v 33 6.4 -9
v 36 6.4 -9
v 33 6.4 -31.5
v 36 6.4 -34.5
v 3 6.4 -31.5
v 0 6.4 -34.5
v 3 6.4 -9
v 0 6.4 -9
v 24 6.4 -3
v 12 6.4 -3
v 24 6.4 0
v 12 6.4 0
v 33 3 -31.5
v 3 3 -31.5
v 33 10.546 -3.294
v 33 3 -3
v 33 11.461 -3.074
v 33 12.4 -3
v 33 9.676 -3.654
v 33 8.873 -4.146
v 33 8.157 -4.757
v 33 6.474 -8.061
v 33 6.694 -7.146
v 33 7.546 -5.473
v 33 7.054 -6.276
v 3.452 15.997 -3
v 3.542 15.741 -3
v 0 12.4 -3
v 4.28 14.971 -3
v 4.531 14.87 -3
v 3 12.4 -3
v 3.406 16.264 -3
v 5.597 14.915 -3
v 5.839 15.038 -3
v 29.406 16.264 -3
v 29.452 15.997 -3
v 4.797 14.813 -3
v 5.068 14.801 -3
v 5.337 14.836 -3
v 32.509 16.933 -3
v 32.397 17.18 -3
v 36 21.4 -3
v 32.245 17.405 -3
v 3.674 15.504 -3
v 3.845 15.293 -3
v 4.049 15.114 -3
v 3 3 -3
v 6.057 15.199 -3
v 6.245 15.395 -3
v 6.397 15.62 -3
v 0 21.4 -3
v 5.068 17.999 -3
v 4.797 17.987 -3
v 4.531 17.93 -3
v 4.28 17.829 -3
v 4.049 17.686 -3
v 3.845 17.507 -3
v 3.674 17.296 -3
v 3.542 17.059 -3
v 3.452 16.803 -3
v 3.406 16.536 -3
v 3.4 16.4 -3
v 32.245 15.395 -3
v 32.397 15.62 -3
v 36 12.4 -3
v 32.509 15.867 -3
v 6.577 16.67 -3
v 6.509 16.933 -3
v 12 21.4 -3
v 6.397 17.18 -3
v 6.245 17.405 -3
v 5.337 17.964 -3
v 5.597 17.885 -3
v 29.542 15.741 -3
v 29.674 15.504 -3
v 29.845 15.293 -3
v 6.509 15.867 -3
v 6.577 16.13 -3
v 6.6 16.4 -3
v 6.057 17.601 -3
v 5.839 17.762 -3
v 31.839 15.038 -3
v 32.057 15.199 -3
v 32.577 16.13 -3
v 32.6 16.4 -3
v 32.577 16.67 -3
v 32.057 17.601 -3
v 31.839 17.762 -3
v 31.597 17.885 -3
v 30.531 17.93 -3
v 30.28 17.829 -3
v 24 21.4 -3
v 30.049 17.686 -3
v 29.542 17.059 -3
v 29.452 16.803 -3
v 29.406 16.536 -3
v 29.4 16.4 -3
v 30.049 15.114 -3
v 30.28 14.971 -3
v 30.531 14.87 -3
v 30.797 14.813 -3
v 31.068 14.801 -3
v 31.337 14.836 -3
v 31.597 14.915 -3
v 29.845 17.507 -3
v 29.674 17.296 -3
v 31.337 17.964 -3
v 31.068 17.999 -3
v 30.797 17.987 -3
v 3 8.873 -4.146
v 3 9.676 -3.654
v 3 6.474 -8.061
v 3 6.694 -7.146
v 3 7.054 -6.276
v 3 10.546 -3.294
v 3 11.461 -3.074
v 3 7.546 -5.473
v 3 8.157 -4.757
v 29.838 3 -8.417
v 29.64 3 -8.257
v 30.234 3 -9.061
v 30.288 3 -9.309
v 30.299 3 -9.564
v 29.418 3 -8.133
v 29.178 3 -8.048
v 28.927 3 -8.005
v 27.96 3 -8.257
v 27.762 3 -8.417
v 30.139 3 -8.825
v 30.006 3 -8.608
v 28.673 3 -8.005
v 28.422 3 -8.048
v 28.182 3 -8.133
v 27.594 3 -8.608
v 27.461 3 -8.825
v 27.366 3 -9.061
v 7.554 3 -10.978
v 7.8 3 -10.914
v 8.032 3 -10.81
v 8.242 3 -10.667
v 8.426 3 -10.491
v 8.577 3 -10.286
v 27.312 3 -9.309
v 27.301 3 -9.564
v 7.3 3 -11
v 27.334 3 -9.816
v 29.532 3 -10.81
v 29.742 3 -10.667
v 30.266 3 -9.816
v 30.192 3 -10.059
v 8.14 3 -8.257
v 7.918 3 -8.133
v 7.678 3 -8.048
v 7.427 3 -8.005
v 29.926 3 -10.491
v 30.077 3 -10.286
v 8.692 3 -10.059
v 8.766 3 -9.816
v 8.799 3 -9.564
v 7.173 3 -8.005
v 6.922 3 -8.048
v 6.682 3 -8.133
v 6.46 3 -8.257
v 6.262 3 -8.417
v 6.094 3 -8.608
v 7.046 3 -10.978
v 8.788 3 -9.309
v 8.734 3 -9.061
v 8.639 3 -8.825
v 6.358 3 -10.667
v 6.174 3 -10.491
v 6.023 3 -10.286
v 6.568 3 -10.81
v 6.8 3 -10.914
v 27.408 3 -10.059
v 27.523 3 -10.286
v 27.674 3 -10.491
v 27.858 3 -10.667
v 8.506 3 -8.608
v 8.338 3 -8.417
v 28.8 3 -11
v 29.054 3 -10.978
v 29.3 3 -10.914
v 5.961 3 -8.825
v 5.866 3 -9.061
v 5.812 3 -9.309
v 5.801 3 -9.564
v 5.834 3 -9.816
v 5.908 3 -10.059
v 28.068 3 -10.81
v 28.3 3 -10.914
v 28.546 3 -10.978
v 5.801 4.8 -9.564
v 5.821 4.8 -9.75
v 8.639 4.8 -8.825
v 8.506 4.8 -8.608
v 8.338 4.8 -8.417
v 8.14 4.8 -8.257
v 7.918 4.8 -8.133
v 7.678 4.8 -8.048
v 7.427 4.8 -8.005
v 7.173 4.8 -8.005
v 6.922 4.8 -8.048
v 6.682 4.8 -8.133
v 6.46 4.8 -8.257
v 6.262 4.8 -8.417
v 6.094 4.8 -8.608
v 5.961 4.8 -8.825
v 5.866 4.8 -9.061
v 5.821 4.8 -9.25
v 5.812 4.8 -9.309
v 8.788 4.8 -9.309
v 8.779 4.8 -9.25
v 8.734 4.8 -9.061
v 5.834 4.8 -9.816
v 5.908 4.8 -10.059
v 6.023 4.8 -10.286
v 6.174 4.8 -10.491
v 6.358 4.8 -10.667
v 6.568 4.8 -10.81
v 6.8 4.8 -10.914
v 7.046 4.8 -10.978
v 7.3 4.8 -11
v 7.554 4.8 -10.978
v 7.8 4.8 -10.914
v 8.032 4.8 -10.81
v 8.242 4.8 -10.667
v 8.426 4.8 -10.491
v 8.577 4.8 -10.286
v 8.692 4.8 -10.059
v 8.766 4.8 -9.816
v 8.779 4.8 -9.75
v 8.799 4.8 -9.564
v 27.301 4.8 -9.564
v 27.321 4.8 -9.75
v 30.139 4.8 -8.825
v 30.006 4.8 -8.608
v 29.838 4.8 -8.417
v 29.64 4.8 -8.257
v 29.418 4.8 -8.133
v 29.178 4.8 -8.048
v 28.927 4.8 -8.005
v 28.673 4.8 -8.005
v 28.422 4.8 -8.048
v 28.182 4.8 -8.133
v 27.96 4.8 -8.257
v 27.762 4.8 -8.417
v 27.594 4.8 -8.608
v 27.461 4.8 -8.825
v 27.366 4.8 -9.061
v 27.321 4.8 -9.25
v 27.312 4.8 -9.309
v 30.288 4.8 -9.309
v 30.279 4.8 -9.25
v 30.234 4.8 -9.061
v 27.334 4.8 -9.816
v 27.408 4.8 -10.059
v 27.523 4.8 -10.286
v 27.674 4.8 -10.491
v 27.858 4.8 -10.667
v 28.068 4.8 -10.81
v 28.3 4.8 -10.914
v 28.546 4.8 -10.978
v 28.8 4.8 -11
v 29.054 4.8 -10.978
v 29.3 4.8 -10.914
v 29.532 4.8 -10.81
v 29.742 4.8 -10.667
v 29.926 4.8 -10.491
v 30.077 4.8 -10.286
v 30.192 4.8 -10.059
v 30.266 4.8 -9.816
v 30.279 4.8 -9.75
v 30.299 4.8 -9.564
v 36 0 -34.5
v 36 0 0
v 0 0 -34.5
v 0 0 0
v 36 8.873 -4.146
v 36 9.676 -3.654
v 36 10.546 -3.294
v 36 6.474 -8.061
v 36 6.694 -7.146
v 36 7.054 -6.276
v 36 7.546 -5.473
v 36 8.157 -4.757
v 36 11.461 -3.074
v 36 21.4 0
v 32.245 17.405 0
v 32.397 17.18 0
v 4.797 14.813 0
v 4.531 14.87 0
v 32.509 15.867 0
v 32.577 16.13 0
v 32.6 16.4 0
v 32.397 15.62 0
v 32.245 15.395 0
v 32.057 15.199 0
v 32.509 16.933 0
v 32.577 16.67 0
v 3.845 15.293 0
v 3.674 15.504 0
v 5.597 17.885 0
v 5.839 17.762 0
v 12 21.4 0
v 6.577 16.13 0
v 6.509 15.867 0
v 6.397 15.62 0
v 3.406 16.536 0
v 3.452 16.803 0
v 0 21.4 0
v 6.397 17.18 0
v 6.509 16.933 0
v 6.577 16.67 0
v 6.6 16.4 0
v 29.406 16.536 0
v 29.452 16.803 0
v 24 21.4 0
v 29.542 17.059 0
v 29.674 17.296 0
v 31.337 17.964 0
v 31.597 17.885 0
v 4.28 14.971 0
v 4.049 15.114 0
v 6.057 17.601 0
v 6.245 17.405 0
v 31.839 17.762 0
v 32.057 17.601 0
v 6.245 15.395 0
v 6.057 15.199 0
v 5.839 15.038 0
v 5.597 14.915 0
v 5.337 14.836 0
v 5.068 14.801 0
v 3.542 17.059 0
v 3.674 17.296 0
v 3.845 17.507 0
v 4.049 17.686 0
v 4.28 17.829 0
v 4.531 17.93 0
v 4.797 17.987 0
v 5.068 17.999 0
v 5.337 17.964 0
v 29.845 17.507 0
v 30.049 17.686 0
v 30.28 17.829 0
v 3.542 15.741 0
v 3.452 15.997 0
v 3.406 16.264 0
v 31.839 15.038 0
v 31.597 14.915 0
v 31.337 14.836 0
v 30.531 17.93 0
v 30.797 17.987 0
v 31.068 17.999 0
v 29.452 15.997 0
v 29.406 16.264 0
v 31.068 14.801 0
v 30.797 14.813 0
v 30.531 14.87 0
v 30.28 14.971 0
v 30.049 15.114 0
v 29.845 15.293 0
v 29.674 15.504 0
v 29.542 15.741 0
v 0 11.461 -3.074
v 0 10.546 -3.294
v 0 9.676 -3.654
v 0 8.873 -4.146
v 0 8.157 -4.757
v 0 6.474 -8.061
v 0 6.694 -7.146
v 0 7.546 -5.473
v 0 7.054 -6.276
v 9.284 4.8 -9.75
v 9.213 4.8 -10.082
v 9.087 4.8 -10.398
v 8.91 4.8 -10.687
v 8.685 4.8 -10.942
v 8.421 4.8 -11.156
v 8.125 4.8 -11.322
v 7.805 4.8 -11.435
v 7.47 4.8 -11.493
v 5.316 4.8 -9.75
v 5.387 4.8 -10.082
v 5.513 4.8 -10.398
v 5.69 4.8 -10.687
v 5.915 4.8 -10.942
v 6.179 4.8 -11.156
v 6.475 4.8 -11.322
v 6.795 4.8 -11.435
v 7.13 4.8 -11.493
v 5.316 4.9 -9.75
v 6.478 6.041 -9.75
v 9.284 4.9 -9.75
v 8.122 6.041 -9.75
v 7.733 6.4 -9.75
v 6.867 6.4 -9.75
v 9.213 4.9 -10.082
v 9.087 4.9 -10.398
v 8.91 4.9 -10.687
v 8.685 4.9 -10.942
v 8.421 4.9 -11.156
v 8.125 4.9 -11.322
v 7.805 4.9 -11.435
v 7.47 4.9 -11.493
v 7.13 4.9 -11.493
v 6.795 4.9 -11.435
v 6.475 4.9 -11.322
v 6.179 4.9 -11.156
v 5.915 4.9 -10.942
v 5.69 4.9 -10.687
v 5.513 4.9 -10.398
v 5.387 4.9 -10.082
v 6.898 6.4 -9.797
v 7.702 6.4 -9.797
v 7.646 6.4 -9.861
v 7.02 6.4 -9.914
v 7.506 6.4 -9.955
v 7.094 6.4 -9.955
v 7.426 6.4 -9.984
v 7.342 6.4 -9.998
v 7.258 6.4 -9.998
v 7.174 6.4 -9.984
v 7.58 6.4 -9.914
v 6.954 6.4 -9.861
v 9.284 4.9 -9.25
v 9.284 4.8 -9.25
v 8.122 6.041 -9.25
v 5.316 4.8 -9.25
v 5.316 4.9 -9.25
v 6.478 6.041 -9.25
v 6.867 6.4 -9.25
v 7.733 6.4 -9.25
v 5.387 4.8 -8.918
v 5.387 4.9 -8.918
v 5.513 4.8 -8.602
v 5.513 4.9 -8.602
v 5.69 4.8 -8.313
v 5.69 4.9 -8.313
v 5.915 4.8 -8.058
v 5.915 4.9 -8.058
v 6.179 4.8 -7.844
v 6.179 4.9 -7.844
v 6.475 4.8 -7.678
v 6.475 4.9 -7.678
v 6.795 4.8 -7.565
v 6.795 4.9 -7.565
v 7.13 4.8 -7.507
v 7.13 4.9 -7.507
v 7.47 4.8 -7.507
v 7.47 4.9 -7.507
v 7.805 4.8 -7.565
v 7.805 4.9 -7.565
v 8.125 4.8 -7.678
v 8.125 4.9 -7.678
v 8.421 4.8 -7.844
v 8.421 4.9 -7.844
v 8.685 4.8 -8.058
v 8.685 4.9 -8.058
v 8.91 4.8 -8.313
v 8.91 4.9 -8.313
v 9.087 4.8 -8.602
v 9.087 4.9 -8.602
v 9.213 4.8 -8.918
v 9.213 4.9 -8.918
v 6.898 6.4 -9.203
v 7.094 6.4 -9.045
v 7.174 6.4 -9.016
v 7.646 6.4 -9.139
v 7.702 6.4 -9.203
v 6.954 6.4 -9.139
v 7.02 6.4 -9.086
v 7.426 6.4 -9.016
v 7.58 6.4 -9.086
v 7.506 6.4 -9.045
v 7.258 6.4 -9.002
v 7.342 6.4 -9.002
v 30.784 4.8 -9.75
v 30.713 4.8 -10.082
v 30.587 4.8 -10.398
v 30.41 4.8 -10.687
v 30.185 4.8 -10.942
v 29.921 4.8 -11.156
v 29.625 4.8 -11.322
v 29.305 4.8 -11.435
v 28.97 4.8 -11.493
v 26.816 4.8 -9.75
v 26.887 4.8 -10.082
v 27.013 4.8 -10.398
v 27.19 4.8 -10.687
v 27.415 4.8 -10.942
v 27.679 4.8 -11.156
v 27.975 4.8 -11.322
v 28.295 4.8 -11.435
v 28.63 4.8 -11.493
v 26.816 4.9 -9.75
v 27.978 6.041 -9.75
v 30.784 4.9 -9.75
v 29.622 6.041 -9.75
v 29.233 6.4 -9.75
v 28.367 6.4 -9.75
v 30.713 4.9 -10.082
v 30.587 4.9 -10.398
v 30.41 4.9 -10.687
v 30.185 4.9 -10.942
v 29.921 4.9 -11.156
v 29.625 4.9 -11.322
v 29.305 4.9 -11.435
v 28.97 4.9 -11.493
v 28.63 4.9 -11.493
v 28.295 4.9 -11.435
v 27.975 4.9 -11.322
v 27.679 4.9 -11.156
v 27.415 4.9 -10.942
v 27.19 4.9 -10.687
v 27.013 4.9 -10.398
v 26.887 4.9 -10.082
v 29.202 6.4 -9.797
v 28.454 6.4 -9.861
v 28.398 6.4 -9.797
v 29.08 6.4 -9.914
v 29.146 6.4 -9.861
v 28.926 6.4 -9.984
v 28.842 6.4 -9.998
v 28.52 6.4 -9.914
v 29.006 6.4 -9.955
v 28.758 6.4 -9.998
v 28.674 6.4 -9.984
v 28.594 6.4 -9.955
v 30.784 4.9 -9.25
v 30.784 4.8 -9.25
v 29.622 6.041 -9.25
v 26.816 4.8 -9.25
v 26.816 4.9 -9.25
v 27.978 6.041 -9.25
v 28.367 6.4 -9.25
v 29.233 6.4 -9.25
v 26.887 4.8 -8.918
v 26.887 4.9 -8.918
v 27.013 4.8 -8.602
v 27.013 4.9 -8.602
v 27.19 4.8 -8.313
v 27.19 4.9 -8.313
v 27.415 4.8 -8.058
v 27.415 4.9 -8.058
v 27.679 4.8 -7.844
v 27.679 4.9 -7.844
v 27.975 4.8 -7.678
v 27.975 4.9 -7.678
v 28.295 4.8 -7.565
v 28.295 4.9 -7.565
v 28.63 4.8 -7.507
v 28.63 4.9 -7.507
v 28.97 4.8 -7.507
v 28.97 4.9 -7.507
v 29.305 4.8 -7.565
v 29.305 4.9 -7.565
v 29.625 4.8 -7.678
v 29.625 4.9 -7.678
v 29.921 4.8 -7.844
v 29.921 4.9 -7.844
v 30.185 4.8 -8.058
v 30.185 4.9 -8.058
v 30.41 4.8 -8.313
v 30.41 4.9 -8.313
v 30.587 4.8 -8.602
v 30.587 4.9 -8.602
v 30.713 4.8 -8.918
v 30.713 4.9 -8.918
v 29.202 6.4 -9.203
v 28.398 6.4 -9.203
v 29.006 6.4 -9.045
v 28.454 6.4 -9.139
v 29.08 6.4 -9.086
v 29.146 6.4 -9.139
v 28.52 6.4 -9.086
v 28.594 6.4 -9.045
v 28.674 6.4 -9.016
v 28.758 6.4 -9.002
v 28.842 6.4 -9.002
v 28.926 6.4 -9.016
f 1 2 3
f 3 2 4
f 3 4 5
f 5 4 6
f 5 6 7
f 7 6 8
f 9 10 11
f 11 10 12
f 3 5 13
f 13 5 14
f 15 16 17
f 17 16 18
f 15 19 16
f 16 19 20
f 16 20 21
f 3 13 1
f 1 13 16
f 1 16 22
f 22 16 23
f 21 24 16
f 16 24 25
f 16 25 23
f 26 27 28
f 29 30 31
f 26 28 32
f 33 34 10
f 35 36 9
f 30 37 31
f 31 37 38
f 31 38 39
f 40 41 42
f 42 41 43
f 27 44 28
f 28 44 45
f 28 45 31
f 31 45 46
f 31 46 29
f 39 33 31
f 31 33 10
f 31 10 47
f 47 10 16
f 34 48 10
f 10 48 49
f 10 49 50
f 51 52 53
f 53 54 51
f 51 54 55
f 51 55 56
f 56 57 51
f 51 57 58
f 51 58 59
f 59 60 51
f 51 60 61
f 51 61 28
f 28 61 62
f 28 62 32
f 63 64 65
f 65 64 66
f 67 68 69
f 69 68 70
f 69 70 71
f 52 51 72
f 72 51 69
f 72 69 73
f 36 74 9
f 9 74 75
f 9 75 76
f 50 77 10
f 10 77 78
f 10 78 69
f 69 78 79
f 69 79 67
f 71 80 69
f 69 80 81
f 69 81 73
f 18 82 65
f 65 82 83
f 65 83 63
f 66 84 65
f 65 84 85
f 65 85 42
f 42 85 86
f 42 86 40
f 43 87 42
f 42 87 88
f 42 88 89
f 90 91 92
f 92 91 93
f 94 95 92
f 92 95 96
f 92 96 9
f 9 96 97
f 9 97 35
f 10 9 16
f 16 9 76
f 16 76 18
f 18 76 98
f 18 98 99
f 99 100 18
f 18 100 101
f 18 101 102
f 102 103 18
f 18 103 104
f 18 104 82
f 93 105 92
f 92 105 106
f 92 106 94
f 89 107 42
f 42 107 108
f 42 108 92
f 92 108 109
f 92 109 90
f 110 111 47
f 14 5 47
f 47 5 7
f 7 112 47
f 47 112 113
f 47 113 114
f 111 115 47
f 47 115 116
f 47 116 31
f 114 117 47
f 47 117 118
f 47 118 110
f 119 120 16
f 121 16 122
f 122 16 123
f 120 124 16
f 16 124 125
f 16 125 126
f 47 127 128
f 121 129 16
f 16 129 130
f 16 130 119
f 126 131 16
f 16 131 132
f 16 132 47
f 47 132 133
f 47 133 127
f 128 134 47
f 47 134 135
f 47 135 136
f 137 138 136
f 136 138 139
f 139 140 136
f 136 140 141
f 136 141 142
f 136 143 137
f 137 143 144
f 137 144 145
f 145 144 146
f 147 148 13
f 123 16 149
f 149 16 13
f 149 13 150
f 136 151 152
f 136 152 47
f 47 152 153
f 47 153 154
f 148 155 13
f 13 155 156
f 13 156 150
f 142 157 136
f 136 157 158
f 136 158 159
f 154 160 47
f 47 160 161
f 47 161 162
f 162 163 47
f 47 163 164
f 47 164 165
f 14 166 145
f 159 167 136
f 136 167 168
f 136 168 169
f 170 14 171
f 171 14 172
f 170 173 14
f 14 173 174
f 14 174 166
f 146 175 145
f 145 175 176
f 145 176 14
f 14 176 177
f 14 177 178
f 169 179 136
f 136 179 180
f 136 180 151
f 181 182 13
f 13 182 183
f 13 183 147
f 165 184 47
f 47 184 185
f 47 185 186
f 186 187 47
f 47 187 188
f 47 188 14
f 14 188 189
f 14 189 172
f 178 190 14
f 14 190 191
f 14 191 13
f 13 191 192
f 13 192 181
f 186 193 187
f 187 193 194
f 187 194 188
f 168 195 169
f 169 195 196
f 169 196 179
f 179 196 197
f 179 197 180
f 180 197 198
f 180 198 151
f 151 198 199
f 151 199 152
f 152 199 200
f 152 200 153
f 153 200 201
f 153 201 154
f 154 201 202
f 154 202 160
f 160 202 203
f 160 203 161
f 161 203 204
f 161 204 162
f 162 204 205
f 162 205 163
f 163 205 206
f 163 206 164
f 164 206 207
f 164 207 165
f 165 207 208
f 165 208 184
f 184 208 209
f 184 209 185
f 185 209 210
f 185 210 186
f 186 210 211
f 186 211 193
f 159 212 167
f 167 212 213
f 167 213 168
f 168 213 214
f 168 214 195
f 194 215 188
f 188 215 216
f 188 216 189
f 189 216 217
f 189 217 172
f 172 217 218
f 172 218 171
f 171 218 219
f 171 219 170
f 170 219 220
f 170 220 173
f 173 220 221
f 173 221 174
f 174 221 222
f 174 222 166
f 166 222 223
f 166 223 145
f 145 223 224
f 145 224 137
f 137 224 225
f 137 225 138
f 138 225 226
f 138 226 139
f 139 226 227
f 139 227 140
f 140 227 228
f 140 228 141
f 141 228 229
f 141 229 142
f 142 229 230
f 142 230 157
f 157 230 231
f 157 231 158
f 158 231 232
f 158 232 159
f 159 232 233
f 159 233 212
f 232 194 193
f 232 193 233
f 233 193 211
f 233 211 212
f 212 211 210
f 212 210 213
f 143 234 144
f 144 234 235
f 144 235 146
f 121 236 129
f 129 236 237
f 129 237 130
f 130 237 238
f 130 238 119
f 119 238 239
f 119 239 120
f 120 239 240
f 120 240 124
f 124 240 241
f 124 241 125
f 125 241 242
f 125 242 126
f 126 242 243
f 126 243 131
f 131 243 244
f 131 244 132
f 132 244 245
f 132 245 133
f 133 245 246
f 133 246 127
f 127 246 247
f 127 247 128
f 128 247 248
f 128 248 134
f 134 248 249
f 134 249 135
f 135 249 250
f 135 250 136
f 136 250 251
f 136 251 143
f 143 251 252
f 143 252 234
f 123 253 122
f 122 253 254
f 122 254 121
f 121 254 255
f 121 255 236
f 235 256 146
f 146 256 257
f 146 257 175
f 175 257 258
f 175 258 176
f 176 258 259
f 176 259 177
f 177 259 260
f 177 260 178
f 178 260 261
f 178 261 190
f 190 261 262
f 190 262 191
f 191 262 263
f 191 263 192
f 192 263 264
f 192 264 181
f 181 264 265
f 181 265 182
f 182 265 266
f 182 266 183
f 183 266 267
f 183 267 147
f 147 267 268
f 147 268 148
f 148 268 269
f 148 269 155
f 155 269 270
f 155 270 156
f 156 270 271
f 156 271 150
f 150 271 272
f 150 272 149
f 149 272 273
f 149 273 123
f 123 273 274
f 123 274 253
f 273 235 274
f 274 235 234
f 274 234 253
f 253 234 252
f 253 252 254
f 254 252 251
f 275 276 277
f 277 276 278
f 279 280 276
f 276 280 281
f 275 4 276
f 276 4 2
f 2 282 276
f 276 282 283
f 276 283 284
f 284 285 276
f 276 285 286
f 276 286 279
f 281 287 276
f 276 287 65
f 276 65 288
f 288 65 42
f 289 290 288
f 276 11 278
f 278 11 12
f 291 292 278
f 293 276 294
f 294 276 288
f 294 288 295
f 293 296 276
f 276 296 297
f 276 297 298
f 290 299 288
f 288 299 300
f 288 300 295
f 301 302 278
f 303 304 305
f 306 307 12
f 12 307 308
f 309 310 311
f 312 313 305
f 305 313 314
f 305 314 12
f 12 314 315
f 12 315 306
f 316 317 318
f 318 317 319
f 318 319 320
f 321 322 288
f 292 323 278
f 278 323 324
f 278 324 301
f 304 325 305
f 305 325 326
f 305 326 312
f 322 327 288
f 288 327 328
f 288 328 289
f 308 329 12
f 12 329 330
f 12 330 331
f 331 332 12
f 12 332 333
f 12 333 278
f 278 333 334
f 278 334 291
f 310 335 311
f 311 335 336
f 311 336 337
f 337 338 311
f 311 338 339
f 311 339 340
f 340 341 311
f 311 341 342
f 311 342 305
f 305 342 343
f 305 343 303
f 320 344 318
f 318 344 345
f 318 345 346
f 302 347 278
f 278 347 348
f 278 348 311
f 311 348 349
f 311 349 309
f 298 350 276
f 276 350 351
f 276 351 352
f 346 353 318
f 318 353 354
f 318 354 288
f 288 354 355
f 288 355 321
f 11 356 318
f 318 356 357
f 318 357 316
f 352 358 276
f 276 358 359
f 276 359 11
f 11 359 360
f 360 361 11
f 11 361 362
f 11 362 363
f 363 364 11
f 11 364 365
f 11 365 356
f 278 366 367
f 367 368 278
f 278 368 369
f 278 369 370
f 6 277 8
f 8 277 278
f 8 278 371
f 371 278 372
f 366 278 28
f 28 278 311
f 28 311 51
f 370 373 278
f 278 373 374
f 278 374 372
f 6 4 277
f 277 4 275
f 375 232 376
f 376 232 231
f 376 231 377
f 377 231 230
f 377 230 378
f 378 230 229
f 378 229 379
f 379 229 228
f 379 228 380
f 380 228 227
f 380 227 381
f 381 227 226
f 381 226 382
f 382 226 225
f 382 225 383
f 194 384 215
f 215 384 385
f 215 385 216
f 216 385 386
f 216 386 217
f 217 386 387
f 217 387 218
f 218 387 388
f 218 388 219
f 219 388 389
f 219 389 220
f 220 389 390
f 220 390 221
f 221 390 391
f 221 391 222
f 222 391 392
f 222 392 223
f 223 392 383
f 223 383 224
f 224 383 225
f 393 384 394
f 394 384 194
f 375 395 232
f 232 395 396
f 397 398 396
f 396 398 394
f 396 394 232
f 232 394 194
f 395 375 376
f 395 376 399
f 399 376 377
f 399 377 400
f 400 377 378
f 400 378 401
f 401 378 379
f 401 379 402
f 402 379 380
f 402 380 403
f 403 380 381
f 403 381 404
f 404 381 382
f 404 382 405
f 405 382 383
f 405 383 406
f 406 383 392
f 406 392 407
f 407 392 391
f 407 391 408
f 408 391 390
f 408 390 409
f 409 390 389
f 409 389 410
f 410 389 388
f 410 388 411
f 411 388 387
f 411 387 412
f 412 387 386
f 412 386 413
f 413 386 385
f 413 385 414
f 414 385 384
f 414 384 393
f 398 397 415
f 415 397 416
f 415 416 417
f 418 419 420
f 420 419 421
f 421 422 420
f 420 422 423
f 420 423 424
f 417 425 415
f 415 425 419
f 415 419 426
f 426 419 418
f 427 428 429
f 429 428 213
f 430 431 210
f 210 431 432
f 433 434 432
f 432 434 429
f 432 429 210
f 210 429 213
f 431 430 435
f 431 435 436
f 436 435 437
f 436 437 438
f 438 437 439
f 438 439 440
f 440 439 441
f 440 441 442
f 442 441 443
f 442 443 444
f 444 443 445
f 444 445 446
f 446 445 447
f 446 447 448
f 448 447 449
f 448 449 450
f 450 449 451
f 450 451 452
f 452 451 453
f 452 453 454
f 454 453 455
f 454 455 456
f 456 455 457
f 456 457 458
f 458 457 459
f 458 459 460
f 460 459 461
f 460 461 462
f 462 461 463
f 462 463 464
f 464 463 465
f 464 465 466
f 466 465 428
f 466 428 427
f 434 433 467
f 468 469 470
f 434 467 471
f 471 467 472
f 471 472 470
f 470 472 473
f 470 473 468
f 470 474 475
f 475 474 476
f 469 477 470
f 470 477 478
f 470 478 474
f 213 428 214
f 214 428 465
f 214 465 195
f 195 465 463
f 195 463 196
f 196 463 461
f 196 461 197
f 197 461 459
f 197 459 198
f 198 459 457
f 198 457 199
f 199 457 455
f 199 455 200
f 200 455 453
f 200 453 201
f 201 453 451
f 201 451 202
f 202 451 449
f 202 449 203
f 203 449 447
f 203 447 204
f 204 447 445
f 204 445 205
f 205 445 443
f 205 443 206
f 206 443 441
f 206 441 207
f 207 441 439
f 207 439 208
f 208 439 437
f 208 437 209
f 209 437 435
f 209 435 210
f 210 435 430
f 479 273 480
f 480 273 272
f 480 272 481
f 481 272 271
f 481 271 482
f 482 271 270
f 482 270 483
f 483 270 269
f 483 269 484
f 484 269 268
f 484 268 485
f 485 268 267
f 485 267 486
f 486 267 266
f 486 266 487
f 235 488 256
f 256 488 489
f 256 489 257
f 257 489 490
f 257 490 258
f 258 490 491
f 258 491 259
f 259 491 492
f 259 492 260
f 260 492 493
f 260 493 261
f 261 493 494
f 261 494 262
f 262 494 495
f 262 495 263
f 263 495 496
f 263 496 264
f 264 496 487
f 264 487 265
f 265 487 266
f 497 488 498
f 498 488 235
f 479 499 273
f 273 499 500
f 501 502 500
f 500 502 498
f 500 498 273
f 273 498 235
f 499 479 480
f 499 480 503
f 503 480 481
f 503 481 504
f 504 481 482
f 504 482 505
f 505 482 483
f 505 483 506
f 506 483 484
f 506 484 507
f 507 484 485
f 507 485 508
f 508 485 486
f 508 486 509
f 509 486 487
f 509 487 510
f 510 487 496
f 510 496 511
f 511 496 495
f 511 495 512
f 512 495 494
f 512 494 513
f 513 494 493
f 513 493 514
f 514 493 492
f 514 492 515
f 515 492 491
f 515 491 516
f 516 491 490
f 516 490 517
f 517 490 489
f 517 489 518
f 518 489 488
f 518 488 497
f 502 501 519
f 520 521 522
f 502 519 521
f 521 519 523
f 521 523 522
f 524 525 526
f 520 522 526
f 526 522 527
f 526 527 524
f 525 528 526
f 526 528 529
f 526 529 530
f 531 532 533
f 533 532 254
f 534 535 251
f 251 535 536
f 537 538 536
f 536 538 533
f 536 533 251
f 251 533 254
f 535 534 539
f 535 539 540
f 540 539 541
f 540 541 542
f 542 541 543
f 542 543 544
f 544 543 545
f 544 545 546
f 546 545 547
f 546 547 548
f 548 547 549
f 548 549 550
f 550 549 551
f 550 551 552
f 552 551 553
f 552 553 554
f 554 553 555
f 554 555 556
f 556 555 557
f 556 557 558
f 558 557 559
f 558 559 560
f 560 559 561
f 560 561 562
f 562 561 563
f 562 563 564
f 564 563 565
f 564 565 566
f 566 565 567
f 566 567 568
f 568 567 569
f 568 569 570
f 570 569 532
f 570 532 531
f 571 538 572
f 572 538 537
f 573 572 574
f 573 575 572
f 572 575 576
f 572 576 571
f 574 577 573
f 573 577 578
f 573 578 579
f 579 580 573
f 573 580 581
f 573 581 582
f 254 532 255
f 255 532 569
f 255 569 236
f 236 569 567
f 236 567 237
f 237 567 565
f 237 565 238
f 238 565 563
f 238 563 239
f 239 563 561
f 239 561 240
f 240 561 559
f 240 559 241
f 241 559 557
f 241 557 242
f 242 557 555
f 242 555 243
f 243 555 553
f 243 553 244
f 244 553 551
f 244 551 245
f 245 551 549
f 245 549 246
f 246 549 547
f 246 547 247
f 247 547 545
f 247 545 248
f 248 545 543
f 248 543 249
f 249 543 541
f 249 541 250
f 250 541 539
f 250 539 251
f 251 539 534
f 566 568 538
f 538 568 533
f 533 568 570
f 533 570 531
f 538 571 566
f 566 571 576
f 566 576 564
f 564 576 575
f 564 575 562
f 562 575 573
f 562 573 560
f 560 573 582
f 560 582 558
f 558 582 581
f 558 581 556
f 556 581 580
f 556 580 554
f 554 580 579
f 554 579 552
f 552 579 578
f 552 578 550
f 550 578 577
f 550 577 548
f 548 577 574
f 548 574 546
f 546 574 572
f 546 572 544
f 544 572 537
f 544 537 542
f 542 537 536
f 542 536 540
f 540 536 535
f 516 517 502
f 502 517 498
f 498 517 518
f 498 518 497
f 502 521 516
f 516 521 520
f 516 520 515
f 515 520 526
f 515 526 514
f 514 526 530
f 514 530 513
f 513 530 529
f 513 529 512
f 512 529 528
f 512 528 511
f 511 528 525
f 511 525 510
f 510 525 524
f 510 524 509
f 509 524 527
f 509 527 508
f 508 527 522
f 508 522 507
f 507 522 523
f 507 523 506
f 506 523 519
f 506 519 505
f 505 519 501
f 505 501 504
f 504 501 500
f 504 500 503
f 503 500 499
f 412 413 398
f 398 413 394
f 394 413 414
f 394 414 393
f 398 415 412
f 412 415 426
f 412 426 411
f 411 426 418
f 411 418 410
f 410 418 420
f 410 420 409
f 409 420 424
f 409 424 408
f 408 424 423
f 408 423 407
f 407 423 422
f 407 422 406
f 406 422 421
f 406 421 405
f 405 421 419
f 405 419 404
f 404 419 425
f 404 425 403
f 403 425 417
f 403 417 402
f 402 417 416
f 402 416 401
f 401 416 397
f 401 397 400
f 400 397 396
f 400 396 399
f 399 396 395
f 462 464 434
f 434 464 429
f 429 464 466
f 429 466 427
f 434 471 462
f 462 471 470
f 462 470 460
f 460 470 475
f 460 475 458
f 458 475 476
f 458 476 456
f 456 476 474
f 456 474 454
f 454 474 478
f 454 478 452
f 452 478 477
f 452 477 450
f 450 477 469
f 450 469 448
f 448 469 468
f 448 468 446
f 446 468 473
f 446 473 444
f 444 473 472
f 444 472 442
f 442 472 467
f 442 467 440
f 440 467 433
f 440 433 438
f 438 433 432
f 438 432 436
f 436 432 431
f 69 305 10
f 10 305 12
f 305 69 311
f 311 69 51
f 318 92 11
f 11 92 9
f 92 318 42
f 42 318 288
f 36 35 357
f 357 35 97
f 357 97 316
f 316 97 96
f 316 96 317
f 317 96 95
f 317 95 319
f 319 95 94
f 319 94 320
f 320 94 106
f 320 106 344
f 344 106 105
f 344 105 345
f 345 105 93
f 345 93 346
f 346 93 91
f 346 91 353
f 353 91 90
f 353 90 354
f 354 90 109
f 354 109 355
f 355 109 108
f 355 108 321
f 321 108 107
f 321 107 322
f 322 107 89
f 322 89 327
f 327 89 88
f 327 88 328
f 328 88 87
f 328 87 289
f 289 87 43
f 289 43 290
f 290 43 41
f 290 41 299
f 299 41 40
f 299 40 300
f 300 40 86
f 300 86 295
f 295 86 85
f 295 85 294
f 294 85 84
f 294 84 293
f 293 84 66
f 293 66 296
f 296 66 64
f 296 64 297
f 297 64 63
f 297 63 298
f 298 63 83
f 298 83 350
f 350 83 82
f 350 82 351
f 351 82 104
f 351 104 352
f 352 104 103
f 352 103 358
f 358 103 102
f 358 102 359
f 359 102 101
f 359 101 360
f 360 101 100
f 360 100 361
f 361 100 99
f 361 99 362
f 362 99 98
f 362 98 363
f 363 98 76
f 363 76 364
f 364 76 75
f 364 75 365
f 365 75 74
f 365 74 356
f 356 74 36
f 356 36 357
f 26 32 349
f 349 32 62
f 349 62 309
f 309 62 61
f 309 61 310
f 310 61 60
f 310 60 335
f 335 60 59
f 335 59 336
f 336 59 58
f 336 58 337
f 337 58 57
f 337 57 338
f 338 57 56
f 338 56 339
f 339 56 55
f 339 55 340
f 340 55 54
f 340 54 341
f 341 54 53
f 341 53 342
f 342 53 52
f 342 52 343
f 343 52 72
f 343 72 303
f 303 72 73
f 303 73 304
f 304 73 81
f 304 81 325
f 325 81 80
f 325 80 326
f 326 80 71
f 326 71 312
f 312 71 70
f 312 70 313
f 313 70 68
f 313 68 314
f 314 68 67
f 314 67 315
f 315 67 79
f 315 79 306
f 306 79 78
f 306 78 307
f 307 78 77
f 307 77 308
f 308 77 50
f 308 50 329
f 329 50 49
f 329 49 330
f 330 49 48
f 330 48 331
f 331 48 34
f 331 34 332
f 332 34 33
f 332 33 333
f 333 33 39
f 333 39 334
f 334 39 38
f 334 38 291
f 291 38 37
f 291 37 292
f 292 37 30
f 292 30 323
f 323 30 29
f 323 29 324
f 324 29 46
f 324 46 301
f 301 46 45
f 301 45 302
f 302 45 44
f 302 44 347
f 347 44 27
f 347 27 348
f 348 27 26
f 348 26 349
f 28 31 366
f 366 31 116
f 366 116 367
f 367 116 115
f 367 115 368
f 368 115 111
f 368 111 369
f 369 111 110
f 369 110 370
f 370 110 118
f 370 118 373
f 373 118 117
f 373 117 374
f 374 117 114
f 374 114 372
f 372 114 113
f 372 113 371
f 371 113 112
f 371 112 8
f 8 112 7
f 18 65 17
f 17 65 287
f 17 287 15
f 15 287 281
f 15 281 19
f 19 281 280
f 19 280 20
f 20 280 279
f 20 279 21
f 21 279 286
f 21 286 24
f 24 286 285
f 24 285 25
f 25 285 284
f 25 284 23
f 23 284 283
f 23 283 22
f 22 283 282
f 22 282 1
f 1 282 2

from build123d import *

# Parameters (mm, degrees)
SKETCH1_W           = 36
SKETCH1_H           = 34.5
BOSS_EXTRUDE1_DEPTH = 3
SKETCH2_W           = 36
SKETCH2_H           = 34.5
SKETCH2_W_2         = 30
SKETCH2_H_2         = 28.5
SKETCH2_R           = 1.5
BOSS_EXTRUDE2_DEPTH = 1.8
SKETCH3_W           = 36
SKETCH3_H           = 34.5
SKETCH3_W_2         = 30
SKETCH3_H_2         = 28.5
BOSS_EXTRUDE3_DEPTH = 1.6
CHAMFER1_SIZE       = 1.5
SKETCH5_W           = 12
SKETCH5_H           = 3
BOSS_EXTRUDE4_DEPTH = 15
SKETCH6_R           = 1.6
CUT_EXTRUDE1_DEPTH  = 55.260575006
FILLET1_R           = 6


with BuildPart() as part:
    # Sketch1 → Boss-Extrude1 (new body)
    with BuildSketch(Plane(origin=(0, 0, 0), x_dir=(1, 0, 0), z_dir=(0, 1, 0))):
        with Locations((18, 17.25)):
            Rectangle(SKETCH1_W, SKETCH1_H)
    extrude(amount=BOSS_EXTRUDE1_DEPTH)

    # Sketch2 → Boss-Extrude2 (add)
    # profile 1 of 3: a face of its own
    with BuildSketch(Plane(origin=(0, 3, 0), x_dir=(1, 0, 0), z_dir=(0, 1, 0))):
        with Locations((18, 17.25)):
            Rectangle(SKETCH2_W, SKETCH2_H)
        with Locations((18, 17.25)):
            Rectangle(SKETCH2_W_2, SKETCH2_H_2, mode=Mode.SUBTRACT)
    # profile 2 of 3: a face of its own
    with BuildSketch(Plane(origin=(0, 3, 0), x_dir=(1, 0, 0), z_dir=(0, 1, 0))):
        with Locations(Location((7.3, 9.5, 0), (0, 0, 90))):
            Circle(SKETCH2_R)
    # profile 3 of 3: a face of its own
    with BuildSketch(Plane(origin=(0, 3, 0), x_dir=(1, 0, 0), z_dir=(0, 1, 0))):
        with Locations(Location((28.8, 9.5, 0), (0, 0, 90))):
            Circle(SKETCH2_R)
    extrude(amount=BOSS_EXTRUDE2_DEPTH)

    # Sketch3 → Boss-Extrude3 (add)
    # profile 1 of 5: a face of its own
    with BuildSketch(Plane(origin=(0, 4.8, 0), x_dir=(1, 0, 0), z_dir=(0, 1, 0))):
        with Locations((18, 17.25)):
            Rectangle(SKETCH3_W, SKETCH3_H)
        with Locations((18, 17.25)):
            Rectangle(SKETCH3_W_2, SKETCH3_H_2, mode=Mode.SUBTRACT)
    # profile 2 of 5: a face of its own
    with BuildSketch(Plane(origin=(0, 4.8, 0), x_dir=(1, 0, 0), z_dir=(0, 1, 0))):
        with BuildLine():
            ThreePointArc((30.784313483, 9.75), (28.8, 11.5), (26.815686517, 9.75))
            Line((26.815686517, 9.75), (30.784313483, 9.75))
        make_face()
    # profile 3 of 5: a face of its own
    with BuildSketch(Plane(origin=(0, 4.8, 0), x_dir=(1, 0, 0), z_dir=(0, 1, 0))):
        with BuildLine():
            ThreePointArc((26.815686517, 9.25), (28.8, 7.5), (30.784313483, 9.25))
            Line((30.784313483, 9.25), (26.815686517, 9.25))
        make_face()
    # profile 4 of 5: a face of its own
    with BuildSketch(Plane(origin=(0, 4.8, 0), x_dir=(1, 0, 0), z_dir=(0, 1, 0))):
        with BuildLine():
            ThreePointArc((9.284313483, 9.75), (7.3, 11.5), (5.315686517, 9.75))
            Line((5.315686517, 9.75), (9.284313483, 9.75))
        make_face()
    # profile 5 of 5: a face of its own
    with BuildSketch(Plane(origin=(0, 4.8, 0), x_dir=(1, 0, 0), z_dir=(0, 1, 0))):
        with BuildLine():
            ThreePointArc((5.315686517, 9.25), (7.3, 7.5), (9.284313483, 9.25))
            Line((9.284313483, 9.25), (5.315686517, 9.25))
        make_face()
    extrude(amount=BOSS_EXTRUDE3_DEPTH)

    # Chamfer1
    chamfer1_edges = [part.edges().sort_by_distance(p)[0] for p in [
        (7.3, 6.4, -11.5),
        (7.3, 6.4, -7.5),
        (28.8, 6.4, -11.5),
        (28.8, 6.4, -7.5),
    ]]
    chamfer(chamfer1_edges, length=CHAMFER1_SIZE)

    # Sketch5 → Boss-Extrude4 (add)
    with BuildSketch(Plane(origin=(0, 6.4, 0), x_dir=(1, 0, 0), z_dir=(0, 1, 0))):
        with Locations((6, 1.5)):
            Rectangle(SKETCH5_W, SKETCH5_H)
        with Locations((30, 1.5)):
            Rectangle(SKETCH5_W, SKETCH5_H)
    extrude(amount=BOSS_EXTRUDE4_DEPTH)

    # Sketch6 → Cut-Extrude1 (cut, through all)
    with BuildSketch(Plane.XY):
        with Locations((5, 16.4)):
            Circle(SKETCH6_R)
        with Locations((31, 16.4)):
            Circle(SKETCH6_R)
    extrude(amount=-CUT_EXTRUDE1_DEPTH, mode=Mode.SUBTRACT)

    # Fillet1
    fillet1_edges = [part.edges().sort_by_distance(p)[0] for p in [
        (1.5, 6.4, -3),
        (34.5, 6.4, -3),
    ]]
    fillet(fillet1_edges, radius=FILLET1_R)


solid = part.part
